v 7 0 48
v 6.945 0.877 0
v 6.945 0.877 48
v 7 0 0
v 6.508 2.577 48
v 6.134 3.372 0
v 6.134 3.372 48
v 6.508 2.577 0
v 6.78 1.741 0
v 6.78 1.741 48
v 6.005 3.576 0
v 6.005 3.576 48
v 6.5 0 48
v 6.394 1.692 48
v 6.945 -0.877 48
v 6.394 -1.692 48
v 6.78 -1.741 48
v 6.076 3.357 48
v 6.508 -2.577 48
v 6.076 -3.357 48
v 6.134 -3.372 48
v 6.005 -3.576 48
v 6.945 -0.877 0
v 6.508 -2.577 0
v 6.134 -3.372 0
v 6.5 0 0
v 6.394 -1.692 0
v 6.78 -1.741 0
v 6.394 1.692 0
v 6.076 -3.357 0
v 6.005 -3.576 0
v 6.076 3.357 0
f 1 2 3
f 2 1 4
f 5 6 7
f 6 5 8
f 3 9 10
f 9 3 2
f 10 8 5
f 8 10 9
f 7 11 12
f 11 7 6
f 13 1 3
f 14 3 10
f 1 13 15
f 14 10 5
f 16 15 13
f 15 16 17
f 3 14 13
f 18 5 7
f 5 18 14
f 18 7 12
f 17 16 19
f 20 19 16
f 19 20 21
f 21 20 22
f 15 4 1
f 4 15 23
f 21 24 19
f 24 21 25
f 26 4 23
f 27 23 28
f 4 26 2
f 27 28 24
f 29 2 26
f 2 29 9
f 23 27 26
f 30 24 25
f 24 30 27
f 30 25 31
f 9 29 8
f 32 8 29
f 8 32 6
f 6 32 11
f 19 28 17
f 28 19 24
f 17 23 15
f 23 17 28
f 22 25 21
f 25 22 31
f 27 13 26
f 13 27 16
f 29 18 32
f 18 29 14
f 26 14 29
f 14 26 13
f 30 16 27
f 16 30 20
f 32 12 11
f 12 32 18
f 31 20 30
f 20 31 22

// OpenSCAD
$fn = 50;


difference() {
	union() {
		cylinder(h = 48, r = 7.0000000000);
		translate(v = [-10.0000000000, 0, 0]) {
			cylinder(h = 48, r = 7.0000000000);
		}
	}
	union() {
		cylinder(h = 48, r = 3.2500000000);
		cylinder(h = 48, r = 1.8000000000);
		cylinder(h = 48, r = 1.8000000000);
		cylinder(h = 48, r = 1.8000000000);
		translate(v = [-14.5000000000, 0, 0]) {
			hull() {
				translate(v = [-3.7500000000, 0.0000000000, 0]) {
					cylinder(h = 48, r = 10.5000000000);
				}
				translate(v = [3.7500000000, 0.0000000000, 0]) {
					cylinder(h = 48, r = 10.5000000000);
				}
				translate(v = [-3.7500000000, -0.0000000000, 0]) {
					cylinder(h = 48, r = 10.5000000000);
				}
				translate(v = [3.7500000000, -0.0000000000, 0]) {
					cylinder(h = 48, r = 10.5000000000);
				}
			}
		}
		translate(v = [-7.0000000000, 0, 0.0000000000]) {
			cylinder(h = 48, r = 13.5000000000);
		}
	}
}
